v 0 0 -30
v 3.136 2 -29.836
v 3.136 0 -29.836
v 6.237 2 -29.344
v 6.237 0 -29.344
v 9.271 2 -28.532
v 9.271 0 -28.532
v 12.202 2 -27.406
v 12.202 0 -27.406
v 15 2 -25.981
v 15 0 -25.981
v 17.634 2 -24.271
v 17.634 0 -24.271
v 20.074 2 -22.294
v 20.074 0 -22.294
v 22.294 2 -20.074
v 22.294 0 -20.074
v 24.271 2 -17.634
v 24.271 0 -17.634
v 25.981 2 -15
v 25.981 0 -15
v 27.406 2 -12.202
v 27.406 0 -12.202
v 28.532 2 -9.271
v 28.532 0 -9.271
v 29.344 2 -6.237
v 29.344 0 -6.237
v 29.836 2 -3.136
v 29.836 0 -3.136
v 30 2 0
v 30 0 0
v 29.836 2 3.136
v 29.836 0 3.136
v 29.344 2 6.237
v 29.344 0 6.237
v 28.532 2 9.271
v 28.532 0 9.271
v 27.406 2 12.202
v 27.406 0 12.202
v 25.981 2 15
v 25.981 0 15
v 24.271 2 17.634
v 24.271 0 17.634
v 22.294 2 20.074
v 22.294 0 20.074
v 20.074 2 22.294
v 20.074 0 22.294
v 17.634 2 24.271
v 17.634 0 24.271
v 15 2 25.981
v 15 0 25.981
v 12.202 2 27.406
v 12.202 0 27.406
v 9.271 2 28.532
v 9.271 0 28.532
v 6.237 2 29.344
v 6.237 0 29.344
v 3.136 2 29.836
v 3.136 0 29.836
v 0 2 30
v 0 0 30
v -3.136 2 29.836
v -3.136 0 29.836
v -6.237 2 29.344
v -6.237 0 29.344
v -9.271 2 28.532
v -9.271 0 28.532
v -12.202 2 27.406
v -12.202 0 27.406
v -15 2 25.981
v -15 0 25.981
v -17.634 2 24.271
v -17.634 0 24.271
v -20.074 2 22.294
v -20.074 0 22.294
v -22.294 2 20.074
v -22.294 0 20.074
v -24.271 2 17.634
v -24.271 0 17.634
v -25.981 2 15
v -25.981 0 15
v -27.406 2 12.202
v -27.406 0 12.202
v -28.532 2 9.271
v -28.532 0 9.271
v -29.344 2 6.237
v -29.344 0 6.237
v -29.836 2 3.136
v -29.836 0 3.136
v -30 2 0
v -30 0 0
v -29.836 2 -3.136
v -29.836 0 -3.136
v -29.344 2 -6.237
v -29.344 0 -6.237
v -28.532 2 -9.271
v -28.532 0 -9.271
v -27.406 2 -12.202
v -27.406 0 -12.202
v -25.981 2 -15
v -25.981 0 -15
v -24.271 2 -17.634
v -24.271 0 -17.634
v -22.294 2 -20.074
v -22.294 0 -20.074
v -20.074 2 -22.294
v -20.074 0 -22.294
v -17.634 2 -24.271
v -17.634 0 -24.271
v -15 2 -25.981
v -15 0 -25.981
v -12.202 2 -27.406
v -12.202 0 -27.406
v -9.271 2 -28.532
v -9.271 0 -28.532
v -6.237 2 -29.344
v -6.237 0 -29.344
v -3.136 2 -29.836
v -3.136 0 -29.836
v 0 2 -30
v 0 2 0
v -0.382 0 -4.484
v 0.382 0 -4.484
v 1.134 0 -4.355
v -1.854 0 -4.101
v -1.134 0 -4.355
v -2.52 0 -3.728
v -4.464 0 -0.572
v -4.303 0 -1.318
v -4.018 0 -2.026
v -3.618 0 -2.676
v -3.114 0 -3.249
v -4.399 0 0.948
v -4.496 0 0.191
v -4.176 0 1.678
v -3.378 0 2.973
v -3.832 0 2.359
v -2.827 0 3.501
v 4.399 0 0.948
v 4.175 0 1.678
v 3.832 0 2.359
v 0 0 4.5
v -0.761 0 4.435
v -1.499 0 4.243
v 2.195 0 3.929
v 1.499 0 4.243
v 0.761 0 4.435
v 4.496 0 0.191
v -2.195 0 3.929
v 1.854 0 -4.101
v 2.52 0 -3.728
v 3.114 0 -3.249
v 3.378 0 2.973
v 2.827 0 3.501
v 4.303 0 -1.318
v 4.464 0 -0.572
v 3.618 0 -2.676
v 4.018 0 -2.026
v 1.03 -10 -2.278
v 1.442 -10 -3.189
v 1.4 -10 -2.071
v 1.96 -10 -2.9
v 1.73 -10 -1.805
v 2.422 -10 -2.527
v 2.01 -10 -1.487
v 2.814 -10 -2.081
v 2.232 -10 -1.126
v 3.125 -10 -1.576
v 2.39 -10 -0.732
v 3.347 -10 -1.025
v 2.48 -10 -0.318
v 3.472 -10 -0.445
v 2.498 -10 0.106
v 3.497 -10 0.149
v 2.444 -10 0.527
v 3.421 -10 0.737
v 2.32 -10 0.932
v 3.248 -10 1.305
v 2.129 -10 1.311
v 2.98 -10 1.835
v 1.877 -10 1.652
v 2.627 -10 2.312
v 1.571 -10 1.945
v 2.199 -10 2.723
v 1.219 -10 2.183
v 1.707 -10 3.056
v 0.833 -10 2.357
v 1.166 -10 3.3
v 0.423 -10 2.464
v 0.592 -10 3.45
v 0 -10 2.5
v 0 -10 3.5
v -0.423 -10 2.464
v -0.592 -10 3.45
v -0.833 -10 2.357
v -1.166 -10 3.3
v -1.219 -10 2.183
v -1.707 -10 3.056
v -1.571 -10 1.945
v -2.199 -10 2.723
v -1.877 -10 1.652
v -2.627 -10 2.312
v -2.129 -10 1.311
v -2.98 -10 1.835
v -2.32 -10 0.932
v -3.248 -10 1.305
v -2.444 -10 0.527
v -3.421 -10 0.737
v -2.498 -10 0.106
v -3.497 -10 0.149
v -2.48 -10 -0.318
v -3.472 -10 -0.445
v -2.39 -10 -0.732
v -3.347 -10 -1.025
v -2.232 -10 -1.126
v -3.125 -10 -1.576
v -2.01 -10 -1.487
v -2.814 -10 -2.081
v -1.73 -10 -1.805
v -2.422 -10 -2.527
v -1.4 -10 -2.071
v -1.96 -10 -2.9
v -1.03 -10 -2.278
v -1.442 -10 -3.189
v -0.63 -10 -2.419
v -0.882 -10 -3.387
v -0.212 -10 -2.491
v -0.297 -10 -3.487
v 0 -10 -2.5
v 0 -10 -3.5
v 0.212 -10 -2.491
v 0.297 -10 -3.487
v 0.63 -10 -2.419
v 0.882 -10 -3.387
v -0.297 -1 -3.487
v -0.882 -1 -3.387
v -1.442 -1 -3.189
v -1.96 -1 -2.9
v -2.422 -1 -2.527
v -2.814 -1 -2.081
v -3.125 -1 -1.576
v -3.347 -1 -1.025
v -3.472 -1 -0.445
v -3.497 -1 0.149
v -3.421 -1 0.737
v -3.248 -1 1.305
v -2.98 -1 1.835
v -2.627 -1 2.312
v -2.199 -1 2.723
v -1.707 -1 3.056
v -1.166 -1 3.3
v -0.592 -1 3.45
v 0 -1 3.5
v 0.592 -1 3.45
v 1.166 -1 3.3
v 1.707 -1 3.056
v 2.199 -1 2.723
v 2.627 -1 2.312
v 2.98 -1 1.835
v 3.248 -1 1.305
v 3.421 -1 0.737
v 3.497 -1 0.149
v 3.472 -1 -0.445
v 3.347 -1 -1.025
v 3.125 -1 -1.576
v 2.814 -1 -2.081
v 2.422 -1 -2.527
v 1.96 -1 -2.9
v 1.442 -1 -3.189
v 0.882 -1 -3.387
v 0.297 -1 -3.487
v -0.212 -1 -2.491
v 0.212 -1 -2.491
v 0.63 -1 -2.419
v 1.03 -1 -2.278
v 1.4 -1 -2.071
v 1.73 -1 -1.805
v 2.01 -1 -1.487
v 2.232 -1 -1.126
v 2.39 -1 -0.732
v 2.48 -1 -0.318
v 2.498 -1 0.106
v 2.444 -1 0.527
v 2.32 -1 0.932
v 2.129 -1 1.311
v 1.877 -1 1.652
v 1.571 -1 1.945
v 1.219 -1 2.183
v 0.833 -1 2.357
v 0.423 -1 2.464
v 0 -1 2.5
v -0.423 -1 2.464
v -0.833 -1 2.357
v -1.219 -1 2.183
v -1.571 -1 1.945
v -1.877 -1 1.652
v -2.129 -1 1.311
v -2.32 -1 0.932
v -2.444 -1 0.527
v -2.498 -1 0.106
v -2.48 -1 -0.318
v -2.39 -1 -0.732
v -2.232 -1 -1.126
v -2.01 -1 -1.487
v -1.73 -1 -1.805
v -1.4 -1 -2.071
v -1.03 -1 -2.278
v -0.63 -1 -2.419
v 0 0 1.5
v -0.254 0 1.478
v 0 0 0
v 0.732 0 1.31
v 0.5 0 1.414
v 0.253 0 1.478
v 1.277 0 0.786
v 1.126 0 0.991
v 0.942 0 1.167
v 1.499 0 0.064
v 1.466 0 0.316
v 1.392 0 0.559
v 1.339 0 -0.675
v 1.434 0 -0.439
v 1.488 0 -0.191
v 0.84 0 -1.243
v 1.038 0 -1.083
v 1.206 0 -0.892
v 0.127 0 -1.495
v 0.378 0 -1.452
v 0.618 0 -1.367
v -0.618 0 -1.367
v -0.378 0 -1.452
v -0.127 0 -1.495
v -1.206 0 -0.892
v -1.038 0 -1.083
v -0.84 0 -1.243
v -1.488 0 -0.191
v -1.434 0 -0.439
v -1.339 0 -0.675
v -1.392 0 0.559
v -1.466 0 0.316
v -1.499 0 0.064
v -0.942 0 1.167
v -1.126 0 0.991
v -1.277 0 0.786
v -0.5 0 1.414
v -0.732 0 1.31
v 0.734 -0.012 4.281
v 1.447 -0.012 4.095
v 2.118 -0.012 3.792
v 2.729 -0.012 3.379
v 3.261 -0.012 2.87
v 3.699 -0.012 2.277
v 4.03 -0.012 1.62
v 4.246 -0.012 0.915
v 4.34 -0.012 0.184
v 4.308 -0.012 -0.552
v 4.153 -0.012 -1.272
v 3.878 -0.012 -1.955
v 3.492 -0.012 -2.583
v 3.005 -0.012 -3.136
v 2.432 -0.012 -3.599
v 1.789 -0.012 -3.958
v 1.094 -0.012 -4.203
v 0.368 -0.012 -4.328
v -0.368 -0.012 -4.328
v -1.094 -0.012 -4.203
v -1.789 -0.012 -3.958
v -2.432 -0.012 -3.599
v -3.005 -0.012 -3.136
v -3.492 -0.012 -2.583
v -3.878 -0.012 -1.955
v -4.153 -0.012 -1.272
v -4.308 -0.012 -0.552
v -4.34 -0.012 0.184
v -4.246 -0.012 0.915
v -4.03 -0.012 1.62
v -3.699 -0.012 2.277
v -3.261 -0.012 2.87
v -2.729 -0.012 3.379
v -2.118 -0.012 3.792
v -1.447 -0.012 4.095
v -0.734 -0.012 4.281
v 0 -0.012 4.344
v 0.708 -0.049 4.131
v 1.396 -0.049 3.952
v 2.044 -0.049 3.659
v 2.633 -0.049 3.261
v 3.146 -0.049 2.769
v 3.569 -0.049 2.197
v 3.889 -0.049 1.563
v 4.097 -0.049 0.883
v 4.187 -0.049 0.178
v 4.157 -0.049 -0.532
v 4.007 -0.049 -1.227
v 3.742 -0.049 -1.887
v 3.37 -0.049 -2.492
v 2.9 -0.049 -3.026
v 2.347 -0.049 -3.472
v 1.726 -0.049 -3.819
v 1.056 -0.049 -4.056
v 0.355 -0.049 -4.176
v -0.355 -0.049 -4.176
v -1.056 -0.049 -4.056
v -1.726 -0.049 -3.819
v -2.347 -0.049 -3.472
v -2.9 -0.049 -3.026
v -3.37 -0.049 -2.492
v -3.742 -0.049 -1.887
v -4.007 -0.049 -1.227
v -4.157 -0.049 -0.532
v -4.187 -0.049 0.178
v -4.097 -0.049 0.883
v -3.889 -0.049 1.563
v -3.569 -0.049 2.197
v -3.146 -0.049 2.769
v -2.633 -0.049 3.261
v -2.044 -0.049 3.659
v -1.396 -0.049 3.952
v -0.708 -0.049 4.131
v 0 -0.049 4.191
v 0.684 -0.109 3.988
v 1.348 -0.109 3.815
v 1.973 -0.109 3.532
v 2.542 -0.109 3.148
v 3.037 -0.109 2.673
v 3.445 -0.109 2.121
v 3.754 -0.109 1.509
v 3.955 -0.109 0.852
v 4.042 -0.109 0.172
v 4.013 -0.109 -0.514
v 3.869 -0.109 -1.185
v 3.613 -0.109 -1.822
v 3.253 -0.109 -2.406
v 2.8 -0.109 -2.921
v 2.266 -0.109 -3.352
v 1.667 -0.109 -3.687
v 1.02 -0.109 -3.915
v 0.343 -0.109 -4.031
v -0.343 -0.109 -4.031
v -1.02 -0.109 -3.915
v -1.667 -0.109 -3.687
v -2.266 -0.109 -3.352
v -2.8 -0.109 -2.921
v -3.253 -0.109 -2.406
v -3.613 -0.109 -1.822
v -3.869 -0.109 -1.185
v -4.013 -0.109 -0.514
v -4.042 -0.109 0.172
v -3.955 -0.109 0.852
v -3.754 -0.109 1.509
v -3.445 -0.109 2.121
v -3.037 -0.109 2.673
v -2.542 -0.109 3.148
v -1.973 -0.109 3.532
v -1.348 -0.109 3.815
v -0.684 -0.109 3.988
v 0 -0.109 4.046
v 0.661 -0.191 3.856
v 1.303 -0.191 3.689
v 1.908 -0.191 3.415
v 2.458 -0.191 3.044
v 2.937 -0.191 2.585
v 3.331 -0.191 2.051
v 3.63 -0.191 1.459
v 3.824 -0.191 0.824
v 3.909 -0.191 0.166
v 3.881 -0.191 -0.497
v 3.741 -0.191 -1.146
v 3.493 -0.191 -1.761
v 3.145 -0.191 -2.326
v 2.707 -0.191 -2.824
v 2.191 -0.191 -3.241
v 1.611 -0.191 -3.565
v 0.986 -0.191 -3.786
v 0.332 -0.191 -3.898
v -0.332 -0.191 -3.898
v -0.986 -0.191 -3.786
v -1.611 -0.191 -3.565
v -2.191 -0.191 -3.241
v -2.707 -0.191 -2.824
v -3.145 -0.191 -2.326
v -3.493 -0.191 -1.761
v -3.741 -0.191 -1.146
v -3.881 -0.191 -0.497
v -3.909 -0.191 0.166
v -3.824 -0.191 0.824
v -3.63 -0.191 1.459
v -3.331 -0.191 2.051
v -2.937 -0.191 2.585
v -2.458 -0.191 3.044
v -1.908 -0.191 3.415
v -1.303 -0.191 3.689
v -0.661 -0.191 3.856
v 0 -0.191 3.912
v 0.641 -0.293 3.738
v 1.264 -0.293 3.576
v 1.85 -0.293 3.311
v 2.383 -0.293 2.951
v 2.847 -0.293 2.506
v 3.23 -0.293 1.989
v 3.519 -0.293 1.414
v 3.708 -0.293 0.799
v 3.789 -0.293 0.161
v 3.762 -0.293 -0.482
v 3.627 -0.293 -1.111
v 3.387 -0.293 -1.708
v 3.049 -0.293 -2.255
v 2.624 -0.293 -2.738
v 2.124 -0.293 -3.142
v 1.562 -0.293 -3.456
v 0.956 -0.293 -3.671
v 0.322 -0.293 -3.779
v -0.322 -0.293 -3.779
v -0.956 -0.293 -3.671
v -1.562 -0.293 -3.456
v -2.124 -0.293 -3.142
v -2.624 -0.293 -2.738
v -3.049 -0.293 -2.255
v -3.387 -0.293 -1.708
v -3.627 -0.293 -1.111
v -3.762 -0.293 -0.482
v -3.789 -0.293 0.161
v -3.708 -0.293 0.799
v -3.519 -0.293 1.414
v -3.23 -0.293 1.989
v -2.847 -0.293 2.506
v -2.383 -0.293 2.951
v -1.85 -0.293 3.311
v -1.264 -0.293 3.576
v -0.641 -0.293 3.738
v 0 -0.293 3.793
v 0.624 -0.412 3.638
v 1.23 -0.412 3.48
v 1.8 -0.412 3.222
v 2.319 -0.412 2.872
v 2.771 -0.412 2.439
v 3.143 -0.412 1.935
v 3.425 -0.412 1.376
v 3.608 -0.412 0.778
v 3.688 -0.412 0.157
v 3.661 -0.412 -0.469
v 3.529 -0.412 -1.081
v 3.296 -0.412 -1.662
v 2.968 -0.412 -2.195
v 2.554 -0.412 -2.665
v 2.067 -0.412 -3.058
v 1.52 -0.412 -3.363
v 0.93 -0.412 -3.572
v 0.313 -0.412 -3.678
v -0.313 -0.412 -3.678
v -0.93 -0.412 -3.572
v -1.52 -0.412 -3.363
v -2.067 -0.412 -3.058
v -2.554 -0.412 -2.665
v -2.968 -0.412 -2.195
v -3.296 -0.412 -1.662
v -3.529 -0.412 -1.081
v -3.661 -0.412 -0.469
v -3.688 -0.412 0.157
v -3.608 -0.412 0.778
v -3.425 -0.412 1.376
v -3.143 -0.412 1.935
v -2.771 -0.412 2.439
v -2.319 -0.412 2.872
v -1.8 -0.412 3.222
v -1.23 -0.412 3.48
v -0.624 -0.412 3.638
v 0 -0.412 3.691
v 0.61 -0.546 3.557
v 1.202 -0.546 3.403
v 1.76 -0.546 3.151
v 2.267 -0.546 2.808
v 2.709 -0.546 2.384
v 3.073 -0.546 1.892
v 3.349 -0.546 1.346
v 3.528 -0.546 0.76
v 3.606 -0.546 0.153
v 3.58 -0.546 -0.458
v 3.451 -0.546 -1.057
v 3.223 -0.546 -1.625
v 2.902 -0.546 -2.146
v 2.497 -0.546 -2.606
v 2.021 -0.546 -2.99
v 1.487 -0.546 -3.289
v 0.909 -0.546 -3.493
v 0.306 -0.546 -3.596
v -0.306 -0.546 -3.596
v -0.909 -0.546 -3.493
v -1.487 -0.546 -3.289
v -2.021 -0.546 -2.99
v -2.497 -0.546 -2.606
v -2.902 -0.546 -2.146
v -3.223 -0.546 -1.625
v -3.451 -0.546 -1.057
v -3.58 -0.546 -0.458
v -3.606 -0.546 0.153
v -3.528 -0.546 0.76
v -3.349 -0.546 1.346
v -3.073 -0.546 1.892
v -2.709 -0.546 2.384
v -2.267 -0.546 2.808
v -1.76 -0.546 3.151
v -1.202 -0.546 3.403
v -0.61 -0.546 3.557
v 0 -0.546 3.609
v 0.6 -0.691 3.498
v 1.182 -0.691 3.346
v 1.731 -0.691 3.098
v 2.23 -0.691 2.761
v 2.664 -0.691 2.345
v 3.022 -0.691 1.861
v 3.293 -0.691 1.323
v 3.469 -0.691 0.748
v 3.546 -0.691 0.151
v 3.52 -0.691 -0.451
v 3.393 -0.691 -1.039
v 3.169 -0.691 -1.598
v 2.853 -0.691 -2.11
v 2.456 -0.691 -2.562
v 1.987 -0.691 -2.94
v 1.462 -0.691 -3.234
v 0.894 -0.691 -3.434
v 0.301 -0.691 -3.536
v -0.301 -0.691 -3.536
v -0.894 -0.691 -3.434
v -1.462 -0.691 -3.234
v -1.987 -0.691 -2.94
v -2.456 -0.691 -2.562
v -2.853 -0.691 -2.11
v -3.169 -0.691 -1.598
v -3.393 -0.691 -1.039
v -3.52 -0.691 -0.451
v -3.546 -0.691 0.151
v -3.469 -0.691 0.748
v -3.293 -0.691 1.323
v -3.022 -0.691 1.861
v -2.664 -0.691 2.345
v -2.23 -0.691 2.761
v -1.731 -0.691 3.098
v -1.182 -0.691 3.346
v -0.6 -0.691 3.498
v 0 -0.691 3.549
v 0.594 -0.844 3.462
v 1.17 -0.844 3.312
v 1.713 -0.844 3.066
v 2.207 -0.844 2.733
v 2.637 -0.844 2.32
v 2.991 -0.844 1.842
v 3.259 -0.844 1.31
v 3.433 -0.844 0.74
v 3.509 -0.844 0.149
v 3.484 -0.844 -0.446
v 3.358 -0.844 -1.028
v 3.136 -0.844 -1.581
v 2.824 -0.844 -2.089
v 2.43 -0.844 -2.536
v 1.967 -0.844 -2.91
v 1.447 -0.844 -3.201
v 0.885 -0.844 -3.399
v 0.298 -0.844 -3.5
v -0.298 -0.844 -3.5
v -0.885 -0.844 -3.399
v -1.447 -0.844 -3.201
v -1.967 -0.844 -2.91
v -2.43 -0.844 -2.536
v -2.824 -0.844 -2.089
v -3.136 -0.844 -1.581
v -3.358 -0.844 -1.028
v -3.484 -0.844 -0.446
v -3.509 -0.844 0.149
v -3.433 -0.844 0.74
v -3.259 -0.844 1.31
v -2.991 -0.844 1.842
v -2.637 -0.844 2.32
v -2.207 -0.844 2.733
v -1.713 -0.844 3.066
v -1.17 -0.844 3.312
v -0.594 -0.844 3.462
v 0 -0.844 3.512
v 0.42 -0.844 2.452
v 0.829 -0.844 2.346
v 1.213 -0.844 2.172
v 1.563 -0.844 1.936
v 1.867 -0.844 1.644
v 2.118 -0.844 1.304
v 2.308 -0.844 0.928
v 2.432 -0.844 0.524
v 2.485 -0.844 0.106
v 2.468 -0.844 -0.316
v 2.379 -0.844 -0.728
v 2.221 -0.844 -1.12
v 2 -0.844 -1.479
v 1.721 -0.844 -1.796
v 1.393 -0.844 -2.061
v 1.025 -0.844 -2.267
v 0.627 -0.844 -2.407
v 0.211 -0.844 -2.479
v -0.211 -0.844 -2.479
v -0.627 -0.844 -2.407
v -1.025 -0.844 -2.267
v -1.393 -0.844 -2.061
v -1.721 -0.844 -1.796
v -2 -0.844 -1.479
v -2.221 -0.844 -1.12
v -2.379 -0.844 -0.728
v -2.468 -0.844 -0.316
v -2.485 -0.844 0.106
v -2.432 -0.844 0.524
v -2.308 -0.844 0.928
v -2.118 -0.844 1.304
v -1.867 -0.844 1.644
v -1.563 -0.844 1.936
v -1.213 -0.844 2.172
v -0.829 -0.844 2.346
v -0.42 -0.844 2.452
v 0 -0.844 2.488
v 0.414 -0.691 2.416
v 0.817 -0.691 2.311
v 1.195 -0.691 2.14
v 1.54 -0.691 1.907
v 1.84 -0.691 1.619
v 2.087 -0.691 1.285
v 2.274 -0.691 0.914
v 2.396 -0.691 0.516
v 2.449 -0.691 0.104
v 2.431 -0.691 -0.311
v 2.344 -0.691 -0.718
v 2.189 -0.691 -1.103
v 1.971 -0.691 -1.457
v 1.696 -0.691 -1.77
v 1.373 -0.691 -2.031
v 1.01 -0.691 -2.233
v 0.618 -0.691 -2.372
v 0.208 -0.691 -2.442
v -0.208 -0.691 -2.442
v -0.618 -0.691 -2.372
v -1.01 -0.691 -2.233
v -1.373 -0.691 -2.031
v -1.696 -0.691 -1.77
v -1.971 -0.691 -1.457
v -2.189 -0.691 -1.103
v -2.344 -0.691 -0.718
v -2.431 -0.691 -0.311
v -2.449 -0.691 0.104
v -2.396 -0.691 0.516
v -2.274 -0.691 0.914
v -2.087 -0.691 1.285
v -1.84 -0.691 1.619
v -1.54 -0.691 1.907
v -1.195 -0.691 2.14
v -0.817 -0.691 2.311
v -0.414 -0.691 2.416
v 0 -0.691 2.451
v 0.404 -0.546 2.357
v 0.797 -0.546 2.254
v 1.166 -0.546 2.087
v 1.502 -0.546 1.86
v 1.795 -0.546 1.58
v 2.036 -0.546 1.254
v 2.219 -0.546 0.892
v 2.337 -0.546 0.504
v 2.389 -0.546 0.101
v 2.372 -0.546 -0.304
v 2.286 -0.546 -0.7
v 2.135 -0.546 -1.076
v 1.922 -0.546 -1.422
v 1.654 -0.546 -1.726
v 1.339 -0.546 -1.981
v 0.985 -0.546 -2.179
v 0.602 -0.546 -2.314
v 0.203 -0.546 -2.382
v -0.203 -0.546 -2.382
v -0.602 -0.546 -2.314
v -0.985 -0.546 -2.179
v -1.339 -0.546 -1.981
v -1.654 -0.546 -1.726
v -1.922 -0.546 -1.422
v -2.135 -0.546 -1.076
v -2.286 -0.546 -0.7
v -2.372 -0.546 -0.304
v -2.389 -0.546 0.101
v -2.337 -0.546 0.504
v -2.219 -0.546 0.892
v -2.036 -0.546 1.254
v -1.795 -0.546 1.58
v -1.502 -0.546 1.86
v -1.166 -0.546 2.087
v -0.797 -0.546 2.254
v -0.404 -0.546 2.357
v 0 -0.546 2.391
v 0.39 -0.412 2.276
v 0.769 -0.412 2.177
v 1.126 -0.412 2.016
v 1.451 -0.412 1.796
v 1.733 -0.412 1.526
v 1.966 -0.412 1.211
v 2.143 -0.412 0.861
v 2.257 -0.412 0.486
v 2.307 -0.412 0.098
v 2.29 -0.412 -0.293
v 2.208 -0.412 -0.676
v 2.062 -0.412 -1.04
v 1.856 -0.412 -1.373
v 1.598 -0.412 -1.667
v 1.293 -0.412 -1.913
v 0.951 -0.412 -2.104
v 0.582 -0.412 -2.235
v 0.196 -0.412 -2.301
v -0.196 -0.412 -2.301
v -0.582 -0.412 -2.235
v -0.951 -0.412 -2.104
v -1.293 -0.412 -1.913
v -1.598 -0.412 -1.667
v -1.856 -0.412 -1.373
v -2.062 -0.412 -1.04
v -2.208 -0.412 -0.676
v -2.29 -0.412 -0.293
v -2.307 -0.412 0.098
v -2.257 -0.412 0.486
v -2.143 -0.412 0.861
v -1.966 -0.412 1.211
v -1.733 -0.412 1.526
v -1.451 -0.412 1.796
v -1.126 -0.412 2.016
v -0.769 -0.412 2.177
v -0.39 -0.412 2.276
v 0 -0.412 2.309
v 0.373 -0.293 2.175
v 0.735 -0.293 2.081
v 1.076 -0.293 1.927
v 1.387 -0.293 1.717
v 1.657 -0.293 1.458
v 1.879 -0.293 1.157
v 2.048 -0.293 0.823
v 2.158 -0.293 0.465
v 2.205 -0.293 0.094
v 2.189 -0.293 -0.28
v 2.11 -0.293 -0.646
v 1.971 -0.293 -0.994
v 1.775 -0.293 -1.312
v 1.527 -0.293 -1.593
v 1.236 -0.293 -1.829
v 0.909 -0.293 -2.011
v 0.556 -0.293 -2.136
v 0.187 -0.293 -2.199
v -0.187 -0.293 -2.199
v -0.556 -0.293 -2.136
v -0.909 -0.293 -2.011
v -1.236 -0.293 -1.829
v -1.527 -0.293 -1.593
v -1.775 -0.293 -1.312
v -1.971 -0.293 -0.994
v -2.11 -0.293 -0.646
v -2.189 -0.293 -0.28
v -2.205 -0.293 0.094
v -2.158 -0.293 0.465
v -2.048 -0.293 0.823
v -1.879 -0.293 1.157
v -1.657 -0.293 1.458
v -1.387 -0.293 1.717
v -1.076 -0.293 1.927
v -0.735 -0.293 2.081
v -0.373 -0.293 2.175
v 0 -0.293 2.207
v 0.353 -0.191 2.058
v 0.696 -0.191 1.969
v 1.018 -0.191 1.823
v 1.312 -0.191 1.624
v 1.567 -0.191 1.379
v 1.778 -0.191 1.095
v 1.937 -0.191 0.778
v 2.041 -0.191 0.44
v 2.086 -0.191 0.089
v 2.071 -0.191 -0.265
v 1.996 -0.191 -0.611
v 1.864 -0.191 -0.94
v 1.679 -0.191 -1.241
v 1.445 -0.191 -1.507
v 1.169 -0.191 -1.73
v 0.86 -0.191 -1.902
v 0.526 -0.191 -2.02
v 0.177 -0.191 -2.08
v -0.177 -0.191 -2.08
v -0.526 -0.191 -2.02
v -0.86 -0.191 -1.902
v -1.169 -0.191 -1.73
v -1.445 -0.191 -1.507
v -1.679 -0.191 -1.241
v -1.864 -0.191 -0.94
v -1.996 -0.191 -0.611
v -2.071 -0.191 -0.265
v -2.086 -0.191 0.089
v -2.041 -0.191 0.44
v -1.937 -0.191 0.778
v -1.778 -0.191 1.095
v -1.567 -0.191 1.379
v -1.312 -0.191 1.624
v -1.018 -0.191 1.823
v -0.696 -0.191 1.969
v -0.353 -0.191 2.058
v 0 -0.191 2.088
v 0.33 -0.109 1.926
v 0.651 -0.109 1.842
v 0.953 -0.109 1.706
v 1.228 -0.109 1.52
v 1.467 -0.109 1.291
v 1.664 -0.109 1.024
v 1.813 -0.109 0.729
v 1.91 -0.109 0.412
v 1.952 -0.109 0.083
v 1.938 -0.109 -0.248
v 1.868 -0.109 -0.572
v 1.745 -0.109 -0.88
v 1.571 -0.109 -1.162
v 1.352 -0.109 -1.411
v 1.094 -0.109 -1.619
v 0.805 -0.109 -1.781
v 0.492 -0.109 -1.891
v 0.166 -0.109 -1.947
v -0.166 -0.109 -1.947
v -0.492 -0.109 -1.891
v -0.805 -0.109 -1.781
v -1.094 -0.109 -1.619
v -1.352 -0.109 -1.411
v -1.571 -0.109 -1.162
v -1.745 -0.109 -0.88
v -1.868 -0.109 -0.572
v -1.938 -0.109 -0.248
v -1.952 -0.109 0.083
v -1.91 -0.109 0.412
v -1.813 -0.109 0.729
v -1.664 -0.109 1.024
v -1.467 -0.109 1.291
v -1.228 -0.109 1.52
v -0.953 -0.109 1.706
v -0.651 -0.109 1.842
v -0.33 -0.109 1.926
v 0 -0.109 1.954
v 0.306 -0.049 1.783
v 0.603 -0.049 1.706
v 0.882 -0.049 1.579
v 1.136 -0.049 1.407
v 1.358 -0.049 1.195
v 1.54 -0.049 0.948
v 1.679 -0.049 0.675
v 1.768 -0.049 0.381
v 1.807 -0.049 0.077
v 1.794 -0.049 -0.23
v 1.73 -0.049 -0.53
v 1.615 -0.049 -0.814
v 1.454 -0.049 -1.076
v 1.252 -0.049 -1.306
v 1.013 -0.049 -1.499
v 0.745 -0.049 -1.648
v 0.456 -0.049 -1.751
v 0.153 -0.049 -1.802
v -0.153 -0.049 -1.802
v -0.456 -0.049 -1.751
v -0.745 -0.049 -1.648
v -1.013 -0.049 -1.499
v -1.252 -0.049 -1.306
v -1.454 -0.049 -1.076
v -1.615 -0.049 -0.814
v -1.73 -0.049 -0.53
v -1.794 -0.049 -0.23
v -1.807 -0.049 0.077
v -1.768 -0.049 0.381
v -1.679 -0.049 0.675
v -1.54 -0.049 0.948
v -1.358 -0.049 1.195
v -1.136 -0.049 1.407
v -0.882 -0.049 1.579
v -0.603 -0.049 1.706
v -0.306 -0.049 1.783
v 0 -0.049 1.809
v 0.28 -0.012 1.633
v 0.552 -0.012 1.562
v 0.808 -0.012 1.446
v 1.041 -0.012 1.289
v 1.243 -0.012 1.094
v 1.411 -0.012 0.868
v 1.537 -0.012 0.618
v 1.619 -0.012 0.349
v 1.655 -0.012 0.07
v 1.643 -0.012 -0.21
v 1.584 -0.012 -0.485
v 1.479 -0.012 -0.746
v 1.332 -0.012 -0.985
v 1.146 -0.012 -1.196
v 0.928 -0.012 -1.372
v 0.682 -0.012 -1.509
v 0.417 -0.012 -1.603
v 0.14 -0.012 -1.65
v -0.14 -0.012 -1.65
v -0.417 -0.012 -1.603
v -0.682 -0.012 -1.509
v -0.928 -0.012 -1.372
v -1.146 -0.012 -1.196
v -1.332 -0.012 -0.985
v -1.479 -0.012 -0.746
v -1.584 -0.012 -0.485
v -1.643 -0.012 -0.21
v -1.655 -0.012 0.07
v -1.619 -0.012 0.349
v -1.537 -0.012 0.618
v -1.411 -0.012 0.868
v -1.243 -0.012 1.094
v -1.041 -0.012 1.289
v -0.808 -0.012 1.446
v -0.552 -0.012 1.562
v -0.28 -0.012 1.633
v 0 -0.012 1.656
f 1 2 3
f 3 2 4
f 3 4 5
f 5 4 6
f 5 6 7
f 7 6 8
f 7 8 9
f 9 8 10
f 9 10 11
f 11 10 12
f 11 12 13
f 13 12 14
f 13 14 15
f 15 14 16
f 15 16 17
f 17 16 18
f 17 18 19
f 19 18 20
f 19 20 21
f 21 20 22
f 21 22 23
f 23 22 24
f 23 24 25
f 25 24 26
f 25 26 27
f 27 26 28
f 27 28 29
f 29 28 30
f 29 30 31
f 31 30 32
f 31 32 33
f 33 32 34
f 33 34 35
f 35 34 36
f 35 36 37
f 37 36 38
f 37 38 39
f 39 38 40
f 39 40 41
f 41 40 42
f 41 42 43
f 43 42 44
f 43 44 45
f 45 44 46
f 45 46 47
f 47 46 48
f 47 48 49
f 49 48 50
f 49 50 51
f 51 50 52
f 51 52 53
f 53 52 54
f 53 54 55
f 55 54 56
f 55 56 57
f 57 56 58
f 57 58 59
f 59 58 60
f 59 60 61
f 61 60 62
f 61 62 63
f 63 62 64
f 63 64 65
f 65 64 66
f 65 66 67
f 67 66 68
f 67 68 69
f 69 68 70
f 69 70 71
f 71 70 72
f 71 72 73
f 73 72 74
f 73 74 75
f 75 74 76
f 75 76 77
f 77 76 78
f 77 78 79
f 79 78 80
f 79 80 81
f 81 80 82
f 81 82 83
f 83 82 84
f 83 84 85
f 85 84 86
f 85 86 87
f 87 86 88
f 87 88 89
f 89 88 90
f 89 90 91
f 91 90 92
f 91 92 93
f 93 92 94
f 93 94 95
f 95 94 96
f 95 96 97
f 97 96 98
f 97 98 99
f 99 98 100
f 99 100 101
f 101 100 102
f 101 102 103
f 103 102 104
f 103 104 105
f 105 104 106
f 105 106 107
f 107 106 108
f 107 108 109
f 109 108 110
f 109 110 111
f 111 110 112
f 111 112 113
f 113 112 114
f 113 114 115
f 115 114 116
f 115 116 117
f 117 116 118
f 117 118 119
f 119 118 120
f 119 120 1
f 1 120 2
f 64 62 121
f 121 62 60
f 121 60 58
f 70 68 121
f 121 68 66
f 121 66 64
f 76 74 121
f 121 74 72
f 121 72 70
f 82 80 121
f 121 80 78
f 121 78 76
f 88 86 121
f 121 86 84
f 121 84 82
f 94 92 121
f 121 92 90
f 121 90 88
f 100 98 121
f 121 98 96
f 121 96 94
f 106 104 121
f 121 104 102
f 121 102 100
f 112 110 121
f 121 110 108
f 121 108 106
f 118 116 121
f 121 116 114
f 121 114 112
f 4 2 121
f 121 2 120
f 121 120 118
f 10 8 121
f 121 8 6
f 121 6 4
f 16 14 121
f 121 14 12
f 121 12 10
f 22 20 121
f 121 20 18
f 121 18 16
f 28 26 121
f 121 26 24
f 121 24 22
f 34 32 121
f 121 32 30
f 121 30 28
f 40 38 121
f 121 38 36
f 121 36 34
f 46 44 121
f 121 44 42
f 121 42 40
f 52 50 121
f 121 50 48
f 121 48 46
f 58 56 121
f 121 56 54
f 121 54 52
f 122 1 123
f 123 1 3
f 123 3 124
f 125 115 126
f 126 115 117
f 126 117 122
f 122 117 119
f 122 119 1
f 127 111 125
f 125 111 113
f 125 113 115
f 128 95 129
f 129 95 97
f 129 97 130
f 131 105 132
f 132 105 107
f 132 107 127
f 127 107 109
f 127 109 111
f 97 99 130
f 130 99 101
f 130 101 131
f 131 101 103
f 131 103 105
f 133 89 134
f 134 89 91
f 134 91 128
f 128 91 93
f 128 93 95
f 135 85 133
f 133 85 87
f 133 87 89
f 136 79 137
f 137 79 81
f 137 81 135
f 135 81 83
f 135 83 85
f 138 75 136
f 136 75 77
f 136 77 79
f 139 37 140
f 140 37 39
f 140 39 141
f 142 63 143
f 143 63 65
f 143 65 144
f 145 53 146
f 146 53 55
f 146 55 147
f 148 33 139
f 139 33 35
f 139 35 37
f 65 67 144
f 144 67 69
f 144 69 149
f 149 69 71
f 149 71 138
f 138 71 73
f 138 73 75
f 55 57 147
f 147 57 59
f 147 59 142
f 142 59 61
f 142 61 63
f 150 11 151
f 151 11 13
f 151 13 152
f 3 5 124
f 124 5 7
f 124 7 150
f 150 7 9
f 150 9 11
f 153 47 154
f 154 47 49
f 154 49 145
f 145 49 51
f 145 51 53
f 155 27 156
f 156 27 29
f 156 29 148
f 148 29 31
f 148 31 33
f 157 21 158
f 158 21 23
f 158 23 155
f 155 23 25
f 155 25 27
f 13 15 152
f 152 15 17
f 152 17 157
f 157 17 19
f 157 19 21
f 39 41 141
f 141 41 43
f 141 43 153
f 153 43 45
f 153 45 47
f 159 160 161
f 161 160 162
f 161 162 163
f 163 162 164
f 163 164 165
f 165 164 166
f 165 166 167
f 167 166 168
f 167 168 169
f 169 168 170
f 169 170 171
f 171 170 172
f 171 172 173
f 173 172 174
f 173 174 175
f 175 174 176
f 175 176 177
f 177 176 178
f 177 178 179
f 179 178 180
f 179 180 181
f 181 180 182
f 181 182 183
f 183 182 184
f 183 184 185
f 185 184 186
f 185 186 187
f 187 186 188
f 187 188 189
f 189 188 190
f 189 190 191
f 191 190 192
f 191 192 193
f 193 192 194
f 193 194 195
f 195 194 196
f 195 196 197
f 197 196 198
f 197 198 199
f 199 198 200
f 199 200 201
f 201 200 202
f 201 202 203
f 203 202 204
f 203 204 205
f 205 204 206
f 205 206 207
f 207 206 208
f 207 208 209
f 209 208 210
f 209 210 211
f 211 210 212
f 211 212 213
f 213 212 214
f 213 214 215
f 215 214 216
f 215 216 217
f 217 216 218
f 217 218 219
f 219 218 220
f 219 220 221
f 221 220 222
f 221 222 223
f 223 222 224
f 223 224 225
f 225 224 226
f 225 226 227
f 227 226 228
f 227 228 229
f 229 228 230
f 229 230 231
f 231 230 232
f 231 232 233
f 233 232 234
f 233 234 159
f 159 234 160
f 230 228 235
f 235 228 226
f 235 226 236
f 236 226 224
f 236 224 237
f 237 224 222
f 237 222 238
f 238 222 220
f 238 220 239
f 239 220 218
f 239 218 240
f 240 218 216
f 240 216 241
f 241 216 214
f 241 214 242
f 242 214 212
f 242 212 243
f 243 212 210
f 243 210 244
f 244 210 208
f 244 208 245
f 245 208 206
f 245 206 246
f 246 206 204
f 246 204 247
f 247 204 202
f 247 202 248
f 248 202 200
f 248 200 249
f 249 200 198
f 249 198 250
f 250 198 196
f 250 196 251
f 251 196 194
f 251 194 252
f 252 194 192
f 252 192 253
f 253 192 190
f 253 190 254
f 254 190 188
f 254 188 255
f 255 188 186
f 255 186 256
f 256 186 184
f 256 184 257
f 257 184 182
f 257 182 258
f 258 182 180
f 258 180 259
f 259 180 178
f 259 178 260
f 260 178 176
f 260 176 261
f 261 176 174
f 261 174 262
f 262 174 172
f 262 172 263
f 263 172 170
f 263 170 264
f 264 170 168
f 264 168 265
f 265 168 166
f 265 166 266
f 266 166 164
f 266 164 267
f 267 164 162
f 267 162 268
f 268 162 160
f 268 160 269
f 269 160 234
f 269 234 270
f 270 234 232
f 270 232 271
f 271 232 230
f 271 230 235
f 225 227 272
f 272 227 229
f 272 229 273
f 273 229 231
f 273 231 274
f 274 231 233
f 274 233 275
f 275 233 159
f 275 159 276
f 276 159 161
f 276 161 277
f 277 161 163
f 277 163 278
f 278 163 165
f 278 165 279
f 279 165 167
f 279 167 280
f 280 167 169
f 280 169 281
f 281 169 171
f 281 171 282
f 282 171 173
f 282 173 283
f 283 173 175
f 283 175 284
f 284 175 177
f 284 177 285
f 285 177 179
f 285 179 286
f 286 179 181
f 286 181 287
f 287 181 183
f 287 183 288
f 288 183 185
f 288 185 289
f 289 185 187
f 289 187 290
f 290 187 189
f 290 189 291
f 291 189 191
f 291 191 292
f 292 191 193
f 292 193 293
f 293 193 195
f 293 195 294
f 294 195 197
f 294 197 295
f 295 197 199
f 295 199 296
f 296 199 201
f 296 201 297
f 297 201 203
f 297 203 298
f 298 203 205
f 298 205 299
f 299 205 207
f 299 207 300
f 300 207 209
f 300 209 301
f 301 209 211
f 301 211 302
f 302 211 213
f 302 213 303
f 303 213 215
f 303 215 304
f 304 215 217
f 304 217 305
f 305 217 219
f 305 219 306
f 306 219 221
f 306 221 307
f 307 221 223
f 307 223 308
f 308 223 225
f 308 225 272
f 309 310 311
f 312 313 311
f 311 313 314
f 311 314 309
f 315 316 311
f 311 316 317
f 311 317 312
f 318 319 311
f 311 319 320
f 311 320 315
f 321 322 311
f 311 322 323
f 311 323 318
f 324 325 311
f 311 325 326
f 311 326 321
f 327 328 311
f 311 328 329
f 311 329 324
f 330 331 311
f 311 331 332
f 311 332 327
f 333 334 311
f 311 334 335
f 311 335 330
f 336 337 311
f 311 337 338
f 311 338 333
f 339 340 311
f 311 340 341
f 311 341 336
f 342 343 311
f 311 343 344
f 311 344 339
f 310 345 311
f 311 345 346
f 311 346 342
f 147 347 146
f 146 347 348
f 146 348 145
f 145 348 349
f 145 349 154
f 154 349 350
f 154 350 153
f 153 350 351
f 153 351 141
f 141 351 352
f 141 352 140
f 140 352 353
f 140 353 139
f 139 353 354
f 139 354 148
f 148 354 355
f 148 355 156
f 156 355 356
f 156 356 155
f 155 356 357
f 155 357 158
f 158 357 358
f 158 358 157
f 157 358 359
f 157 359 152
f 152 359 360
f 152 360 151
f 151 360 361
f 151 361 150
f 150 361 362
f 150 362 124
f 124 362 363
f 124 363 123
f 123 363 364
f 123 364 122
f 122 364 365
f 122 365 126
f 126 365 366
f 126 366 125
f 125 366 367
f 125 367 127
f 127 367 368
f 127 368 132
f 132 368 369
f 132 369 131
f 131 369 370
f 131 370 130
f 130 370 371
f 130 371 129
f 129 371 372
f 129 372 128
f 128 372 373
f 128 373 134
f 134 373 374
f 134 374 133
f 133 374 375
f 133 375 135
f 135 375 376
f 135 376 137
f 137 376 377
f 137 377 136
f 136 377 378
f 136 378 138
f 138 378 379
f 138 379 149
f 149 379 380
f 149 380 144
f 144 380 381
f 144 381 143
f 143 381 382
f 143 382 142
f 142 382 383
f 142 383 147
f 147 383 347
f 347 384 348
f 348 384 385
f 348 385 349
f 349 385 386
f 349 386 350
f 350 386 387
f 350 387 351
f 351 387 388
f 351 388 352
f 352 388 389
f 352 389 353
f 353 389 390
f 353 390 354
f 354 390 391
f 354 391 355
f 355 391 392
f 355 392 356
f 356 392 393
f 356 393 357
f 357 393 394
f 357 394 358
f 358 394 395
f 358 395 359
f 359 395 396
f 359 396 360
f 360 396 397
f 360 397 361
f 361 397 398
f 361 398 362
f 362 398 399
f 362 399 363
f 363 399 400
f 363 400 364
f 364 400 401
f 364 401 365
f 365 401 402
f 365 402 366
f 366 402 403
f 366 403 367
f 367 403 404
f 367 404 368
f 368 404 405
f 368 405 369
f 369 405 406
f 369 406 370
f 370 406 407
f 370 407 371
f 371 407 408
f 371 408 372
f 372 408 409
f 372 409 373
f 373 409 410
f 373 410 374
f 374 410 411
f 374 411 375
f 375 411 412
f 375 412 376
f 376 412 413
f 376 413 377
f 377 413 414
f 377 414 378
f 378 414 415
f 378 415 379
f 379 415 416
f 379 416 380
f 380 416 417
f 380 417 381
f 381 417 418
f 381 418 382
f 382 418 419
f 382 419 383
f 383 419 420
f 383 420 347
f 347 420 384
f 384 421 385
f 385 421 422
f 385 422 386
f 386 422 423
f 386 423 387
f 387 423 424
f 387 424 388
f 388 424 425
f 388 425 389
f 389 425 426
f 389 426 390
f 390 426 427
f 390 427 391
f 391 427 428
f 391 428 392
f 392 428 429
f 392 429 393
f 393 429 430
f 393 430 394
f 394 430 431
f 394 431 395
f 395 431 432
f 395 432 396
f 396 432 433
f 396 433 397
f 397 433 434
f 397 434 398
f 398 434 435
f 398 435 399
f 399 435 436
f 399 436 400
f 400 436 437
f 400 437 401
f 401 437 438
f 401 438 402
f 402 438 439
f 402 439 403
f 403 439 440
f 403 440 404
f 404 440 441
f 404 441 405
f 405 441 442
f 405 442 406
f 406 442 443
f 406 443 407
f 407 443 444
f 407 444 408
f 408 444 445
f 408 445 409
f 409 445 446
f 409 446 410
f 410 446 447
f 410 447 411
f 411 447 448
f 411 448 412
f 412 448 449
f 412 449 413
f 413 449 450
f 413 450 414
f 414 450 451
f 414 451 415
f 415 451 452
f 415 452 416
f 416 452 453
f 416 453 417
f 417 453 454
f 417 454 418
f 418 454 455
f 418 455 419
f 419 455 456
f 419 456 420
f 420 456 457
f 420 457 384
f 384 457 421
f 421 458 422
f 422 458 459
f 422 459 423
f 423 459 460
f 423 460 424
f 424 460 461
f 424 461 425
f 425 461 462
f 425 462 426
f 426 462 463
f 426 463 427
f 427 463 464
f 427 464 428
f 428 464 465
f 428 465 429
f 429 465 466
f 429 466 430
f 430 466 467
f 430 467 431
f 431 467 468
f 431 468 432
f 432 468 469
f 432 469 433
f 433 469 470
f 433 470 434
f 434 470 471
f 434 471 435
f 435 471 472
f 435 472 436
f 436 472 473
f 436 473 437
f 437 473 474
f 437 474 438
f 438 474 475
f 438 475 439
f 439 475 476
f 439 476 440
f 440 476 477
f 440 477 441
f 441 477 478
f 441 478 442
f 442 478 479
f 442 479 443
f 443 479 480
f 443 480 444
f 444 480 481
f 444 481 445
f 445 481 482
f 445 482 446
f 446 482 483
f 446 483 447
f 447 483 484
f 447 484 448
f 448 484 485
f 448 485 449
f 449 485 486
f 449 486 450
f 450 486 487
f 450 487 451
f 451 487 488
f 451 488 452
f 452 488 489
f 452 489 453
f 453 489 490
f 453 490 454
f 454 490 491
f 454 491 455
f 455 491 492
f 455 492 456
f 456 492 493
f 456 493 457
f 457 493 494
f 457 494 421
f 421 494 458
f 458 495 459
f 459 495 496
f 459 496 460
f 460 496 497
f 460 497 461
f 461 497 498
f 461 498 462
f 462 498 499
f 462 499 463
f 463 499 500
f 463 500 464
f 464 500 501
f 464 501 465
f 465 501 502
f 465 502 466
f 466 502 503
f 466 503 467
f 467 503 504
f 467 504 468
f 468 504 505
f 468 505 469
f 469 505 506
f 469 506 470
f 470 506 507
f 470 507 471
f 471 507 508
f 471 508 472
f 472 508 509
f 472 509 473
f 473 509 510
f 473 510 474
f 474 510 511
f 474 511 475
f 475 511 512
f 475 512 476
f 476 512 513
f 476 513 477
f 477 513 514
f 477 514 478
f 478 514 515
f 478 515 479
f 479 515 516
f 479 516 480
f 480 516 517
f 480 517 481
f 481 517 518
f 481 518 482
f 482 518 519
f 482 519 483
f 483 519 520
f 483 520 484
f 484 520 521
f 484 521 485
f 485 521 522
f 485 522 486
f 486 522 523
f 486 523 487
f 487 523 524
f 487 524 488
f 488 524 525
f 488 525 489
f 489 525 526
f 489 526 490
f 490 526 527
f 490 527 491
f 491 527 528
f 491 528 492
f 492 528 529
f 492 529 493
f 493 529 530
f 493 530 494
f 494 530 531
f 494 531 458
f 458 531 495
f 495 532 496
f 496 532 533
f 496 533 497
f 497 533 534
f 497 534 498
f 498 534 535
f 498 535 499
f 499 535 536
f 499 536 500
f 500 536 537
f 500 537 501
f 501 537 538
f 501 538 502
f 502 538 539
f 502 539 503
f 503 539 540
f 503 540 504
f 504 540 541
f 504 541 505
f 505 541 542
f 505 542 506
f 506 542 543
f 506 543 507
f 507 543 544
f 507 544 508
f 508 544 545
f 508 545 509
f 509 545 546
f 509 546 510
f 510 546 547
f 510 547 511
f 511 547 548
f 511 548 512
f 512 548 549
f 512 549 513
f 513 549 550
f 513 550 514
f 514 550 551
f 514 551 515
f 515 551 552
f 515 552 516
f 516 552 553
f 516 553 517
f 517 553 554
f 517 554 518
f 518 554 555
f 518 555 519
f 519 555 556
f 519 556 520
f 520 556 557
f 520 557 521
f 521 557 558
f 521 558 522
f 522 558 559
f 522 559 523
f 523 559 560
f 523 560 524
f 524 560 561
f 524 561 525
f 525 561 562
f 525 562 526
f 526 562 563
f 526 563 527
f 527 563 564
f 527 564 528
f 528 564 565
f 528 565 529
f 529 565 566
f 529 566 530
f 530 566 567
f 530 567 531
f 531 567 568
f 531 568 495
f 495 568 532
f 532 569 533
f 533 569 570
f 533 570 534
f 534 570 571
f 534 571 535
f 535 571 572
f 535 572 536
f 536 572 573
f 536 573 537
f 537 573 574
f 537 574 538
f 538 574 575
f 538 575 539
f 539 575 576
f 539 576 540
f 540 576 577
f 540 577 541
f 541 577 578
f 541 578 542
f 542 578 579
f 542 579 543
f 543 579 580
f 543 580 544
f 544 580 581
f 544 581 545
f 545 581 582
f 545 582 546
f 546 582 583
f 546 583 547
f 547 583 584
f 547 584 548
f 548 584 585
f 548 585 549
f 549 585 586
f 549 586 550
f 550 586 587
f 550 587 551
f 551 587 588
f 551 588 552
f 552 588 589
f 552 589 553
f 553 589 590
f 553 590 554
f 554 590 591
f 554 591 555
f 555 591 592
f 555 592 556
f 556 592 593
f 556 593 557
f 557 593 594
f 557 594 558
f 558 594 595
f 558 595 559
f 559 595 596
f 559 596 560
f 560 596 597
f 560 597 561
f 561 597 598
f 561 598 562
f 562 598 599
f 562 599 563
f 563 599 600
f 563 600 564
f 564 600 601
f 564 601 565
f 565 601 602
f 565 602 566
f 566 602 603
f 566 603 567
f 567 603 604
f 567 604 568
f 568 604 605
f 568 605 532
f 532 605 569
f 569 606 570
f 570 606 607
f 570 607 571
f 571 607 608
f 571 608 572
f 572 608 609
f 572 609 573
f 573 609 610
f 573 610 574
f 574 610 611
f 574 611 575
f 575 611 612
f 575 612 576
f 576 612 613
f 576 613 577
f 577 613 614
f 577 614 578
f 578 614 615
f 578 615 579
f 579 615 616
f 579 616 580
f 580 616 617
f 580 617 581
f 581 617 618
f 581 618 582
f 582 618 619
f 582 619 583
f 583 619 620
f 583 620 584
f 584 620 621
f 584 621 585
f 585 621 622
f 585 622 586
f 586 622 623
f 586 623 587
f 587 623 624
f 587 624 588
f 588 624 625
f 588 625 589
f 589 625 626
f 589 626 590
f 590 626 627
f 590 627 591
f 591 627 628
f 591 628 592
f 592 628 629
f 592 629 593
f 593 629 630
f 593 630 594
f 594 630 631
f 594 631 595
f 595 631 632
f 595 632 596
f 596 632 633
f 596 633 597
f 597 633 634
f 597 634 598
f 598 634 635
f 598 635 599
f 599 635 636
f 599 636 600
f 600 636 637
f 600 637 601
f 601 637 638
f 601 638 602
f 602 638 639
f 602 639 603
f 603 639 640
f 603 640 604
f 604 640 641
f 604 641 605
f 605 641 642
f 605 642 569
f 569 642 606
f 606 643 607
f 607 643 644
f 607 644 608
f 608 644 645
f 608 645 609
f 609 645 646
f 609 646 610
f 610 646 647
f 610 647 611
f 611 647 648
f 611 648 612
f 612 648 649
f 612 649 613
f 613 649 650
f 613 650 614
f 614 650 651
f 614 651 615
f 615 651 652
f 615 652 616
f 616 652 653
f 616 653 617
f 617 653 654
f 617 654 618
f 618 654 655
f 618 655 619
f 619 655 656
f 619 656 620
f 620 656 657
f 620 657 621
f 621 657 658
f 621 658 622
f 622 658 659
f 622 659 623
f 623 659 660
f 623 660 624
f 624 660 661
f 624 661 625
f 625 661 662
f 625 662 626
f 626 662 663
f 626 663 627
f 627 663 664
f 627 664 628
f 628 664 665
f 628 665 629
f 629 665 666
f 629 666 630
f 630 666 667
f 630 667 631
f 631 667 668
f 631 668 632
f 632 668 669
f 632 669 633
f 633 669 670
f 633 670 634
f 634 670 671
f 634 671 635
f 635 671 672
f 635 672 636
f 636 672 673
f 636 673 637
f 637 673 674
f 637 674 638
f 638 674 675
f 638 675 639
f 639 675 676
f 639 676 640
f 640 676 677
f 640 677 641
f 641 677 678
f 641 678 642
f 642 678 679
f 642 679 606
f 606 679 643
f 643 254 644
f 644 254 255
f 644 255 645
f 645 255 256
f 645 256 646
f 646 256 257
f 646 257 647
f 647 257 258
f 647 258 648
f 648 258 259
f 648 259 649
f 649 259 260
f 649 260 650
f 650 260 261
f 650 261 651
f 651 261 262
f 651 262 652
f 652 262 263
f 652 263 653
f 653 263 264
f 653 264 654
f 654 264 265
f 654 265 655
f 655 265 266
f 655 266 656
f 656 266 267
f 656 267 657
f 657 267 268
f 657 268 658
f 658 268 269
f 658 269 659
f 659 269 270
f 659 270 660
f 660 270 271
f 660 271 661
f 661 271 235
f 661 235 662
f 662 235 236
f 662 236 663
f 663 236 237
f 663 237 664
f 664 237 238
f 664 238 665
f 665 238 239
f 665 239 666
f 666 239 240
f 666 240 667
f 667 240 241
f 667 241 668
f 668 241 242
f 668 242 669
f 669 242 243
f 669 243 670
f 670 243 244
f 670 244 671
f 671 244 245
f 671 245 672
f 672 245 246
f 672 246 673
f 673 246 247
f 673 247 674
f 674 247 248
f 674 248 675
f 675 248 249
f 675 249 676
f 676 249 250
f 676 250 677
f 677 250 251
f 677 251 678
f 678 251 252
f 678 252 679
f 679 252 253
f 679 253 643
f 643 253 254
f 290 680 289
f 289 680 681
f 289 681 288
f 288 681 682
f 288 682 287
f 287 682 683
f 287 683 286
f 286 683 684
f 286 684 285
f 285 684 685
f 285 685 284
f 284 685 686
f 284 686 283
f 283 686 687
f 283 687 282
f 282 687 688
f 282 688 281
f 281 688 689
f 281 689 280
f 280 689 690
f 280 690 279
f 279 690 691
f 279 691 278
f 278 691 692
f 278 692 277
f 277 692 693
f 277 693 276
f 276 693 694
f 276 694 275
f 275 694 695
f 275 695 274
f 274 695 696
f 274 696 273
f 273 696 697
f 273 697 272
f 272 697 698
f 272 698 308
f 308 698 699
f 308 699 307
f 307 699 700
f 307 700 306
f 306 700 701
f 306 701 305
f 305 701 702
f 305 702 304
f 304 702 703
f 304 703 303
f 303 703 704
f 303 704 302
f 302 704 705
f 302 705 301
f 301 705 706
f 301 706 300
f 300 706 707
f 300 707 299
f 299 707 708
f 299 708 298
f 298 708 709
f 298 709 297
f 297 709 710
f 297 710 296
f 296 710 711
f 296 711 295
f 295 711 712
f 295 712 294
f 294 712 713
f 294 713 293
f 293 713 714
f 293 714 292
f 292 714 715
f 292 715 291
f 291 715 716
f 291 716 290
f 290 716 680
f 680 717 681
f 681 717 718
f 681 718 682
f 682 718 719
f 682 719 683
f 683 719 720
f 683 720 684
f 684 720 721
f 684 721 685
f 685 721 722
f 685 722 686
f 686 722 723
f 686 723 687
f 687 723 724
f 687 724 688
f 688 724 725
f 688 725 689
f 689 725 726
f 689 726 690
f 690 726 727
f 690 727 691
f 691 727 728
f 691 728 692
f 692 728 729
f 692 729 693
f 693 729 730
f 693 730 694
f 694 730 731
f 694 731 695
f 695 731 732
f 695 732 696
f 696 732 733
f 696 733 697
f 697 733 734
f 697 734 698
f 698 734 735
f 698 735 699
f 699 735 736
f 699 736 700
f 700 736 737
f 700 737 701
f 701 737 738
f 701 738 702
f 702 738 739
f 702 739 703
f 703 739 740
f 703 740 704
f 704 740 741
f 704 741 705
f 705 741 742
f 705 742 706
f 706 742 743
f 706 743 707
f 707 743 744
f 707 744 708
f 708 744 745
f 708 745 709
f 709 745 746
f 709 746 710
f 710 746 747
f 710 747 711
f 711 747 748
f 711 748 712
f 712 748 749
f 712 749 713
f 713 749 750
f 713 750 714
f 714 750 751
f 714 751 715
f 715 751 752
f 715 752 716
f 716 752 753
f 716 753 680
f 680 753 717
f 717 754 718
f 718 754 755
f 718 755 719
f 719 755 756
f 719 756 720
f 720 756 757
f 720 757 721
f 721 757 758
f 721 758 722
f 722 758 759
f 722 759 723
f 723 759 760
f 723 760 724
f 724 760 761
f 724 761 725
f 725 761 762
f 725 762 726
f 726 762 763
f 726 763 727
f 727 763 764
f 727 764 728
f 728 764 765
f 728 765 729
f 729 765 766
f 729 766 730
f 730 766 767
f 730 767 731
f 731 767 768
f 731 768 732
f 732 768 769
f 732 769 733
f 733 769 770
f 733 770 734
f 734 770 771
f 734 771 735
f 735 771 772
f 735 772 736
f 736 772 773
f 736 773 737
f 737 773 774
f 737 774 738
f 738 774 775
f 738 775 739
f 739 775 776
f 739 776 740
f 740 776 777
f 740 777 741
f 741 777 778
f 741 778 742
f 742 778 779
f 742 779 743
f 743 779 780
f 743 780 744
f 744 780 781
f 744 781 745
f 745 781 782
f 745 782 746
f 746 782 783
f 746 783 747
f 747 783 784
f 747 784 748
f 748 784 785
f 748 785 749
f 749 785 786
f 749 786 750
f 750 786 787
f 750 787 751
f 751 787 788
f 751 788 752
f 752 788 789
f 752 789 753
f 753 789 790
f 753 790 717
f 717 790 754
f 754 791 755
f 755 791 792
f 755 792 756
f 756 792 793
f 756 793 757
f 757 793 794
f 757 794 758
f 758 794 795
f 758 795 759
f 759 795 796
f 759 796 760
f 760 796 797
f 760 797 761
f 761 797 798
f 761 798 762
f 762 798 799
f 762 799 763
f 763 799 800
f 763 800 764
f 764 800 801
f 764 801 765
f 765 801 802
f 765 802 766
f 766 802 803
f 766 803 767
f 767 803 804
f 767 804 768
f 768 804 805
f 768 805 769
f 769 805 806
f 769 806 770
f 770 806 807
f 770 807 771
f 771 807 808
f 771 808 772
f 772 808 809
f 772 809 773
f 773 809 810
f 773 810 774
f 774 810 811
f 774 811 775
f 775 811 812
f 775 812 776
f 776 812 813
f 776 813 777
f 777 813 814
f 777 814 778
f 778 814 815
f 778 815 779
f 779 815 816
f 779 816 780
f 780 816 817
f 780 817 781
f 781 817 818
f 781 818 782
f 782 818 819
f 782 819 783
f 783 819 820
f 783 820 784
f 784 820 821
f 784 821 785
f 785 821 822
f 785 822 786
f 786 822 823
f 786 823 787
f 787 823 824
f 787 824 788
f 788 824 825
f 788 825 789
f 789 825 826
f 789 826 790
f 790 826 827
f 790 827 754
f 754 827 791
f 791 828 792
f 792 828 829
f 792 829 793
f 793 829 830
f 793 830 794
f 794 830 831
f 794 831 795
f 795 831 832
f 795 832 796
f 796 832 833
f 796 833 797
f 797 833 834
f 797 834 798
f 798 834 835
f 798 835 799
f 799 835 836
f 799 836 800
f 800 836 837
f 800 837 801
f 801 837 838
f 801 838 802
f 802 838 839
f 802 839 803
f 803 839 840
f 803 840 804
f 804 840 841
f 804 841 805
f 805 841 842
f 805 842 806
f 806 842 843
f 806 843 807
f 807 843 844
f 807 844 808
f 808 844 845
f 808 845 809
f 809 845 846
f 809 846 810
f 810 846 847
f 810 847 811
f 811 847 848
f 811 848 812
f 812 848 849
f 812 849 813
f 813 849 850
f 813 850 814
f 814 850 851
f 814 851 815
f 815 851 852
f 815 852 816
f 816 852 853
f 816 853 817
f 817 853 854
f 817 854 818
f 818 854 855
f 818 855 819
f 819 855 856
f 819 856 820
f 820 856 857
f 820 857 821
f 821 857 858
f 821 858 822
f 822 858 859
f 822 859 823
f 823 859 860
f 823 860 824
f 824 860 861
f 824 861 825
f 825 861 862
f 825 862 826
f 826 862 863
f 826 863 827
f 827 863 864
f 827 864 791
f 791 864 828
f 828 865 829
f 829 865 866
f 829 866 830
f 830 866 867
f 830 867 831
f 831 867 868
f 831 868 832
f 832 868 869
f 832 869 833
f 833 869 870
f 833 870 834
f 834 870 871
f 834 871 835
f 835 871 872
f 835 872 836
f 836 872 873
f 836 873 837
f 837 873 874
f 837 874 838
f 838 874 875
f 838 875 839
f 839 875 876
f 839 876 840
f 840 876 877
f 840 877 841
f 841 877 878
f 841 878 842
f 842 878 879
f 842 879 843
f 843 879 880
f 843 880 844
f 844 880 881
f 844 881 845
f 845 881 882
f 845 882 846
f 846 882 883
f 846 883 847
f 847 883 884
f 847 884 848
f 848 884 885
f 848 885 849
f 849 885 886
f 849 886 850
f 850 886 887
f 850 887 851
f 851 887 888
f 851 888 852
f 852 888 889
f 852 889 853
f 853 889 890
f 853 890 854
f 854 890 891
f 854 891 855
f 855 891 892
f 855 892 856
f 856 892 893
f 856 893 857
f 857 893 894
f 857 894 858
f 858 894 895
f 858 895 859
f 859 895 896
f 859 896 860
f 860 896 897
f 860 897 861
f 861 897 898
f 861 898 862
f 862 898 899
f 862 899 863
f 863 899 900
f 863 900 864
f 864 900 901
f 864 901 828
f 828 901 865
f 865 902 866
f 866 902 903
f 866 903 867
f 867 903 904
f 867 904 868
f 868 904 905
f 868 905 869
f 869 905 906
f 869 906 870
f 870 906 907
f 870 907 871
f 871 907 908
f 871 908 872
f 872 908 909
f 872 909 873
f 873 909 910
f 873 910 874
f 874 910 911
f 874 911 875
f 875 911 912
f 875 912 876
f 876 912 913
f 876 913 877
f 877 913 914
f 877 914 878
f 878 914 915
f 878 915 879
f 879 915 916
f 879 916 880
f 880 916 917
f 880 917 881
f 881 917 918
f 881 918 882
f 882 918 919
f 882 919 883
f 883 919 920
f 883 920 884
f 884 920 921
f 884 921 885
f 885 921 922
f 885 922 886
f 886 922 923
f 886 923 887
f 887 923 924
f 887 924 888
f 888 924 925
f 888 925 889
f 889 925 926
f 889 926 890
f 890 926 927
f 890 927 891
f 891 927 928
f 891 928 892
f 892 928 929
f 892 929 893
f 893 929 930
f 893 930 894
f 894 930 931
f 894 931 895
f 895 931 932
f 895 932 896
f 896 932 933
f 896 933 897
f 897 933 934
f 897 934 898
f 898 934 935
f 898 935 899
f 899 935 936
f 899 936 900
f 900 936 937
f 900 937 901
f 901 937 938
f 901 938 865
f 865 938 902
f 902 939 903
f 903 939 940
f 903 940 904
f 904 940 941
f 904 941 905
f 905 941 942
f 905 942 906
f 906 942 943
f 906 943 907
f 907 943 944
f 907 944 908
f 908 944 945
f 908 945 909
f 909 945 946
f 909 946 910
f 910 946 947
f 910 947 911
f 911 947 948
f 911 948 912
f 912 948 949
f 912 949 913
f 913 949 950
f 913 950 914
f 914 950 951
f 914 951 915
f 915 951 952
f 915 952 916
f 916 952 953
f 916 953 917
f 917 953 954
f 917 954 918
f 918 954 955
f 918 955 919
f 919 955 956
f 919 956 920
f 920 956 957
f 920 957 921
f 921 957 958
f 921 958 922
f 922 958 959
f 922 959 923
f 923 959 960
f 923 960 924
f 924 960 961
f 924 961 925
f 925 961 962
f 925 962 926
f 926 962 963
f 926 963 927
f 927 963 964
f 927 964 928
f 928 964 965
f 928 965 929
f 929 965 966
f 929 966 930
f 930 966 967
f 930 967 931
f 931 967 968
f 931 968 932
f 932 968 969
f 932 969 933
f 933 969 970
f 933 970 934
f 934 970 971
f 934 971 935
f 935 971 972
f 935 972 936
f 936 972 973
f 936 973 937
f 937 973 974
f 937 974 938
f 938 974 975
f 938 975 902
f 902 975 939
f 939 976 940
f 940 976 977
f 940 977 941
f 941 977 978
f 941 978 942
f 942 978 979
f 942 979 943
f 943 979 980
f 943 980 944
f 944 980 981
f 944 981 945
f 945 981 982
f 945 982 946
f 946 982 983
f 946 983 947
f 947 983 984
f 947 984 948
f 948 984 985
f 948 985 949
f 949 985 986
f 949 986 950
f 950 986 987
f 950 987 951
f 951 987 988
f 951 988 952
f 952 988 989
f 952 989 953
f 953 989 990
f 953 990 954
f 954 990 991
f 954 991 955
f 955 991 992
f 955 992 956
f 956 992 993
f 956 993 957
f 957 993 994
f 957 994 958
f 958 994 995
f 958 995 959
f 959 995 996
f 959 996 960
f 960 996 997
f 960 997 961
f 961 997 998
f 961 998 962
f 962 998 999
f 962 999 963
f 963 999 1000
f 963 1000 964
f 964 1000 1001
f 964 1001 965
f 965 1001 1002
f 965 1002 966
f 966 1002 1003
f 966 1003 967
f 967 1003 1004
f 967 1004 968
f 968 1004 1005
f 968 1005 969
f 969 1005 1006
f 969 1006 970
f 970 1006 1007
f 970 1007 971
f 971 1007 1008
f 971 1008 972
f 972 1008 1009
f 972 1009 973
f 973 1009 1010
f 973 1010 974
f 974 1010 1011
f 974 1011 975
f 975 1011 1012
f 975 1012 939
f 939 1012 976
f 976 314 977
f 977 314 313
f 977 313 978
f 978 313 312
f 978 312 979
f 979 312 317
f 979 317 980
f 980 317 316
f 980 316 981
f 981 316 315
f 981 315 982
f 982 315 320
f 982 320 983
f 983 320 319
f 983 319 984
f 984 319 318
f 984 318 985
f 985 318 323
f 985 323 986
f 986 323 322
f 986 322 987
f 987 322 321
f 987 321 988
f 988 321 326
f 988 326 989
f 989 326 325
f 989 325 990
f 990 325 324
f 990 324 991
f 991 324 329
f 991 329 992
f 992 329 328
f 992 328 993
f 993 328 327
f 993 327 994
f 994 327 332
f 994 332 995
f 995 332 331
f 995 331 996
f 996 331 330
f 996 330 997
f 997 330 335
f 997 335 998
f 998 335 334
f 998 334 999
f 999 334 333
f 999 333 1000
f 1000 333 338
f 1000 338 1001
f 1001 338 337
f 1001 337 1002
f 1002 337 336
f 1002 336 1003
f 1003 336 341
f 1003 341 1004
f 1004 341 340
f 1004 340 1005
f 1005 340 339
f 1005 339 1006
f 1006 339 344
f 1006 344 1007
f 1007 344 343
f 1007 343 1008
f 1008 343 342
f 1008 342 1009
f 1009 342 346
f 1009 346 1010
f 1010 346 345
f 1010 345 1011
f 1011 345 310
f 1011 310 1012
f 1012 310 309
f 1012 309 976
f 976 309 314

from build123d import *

# Parameters (mm, degrees)
SKETCH1_R           = 30
BOSS_EXTRUDE1_DEPTH = 2
SKETCH2_R           = 3.5
SKETCH2_R_2         = 2.5
BOSS_EXTRUDE2_DEPTH = 10
FILLET1_R           = 1
FILLET2_R           = 1


with BuildPart() as part:
    # Sketch1 → Boss-Extrude1 (new body)
    with BuildSketch(Plane(origin=(0, 0, 0), x_dir=(1, 0, 0), z_dir=(0, 1, 0))):
        with Locations(Location((0, 0, 0), (0, 0, 270))):
            Circle(SKETCH1_R)
    extrude(amount=BOSS_EXTRUDE1_DEPTH)

    # Sketch2 → Boss-Extrude2 (add)
    with BuildSketch(Plane.XZ):
        with Locations(Location((0, 0, 0), (0, 0, 90))):
            Circle(SKETCH2_R)
        with Locations(Location((0, 0, 0), (0, 0, 270))):
            Circle(SKETCH2_R_2, mode=Mode.SUBTRACT)
    extrude(amount=BOSS_EXTRUDE2_DEPTH)

    # Fillet1
    fillet1_edges = [part.edges().sort_by_distance(p)[0] for p in [
        (0, 0, -3.5),
    ]]
    fillet(fillet1_edges, radius=FILLET1_R)

    # Fillet2
    fillet2_edges = [part.edges().sort_by_distance(p)[0] for p in [
        (0, 0, 2.5),
    ]]
    fillet(fillet2_edges, radius=FILLET2_R)


solid = part.part
